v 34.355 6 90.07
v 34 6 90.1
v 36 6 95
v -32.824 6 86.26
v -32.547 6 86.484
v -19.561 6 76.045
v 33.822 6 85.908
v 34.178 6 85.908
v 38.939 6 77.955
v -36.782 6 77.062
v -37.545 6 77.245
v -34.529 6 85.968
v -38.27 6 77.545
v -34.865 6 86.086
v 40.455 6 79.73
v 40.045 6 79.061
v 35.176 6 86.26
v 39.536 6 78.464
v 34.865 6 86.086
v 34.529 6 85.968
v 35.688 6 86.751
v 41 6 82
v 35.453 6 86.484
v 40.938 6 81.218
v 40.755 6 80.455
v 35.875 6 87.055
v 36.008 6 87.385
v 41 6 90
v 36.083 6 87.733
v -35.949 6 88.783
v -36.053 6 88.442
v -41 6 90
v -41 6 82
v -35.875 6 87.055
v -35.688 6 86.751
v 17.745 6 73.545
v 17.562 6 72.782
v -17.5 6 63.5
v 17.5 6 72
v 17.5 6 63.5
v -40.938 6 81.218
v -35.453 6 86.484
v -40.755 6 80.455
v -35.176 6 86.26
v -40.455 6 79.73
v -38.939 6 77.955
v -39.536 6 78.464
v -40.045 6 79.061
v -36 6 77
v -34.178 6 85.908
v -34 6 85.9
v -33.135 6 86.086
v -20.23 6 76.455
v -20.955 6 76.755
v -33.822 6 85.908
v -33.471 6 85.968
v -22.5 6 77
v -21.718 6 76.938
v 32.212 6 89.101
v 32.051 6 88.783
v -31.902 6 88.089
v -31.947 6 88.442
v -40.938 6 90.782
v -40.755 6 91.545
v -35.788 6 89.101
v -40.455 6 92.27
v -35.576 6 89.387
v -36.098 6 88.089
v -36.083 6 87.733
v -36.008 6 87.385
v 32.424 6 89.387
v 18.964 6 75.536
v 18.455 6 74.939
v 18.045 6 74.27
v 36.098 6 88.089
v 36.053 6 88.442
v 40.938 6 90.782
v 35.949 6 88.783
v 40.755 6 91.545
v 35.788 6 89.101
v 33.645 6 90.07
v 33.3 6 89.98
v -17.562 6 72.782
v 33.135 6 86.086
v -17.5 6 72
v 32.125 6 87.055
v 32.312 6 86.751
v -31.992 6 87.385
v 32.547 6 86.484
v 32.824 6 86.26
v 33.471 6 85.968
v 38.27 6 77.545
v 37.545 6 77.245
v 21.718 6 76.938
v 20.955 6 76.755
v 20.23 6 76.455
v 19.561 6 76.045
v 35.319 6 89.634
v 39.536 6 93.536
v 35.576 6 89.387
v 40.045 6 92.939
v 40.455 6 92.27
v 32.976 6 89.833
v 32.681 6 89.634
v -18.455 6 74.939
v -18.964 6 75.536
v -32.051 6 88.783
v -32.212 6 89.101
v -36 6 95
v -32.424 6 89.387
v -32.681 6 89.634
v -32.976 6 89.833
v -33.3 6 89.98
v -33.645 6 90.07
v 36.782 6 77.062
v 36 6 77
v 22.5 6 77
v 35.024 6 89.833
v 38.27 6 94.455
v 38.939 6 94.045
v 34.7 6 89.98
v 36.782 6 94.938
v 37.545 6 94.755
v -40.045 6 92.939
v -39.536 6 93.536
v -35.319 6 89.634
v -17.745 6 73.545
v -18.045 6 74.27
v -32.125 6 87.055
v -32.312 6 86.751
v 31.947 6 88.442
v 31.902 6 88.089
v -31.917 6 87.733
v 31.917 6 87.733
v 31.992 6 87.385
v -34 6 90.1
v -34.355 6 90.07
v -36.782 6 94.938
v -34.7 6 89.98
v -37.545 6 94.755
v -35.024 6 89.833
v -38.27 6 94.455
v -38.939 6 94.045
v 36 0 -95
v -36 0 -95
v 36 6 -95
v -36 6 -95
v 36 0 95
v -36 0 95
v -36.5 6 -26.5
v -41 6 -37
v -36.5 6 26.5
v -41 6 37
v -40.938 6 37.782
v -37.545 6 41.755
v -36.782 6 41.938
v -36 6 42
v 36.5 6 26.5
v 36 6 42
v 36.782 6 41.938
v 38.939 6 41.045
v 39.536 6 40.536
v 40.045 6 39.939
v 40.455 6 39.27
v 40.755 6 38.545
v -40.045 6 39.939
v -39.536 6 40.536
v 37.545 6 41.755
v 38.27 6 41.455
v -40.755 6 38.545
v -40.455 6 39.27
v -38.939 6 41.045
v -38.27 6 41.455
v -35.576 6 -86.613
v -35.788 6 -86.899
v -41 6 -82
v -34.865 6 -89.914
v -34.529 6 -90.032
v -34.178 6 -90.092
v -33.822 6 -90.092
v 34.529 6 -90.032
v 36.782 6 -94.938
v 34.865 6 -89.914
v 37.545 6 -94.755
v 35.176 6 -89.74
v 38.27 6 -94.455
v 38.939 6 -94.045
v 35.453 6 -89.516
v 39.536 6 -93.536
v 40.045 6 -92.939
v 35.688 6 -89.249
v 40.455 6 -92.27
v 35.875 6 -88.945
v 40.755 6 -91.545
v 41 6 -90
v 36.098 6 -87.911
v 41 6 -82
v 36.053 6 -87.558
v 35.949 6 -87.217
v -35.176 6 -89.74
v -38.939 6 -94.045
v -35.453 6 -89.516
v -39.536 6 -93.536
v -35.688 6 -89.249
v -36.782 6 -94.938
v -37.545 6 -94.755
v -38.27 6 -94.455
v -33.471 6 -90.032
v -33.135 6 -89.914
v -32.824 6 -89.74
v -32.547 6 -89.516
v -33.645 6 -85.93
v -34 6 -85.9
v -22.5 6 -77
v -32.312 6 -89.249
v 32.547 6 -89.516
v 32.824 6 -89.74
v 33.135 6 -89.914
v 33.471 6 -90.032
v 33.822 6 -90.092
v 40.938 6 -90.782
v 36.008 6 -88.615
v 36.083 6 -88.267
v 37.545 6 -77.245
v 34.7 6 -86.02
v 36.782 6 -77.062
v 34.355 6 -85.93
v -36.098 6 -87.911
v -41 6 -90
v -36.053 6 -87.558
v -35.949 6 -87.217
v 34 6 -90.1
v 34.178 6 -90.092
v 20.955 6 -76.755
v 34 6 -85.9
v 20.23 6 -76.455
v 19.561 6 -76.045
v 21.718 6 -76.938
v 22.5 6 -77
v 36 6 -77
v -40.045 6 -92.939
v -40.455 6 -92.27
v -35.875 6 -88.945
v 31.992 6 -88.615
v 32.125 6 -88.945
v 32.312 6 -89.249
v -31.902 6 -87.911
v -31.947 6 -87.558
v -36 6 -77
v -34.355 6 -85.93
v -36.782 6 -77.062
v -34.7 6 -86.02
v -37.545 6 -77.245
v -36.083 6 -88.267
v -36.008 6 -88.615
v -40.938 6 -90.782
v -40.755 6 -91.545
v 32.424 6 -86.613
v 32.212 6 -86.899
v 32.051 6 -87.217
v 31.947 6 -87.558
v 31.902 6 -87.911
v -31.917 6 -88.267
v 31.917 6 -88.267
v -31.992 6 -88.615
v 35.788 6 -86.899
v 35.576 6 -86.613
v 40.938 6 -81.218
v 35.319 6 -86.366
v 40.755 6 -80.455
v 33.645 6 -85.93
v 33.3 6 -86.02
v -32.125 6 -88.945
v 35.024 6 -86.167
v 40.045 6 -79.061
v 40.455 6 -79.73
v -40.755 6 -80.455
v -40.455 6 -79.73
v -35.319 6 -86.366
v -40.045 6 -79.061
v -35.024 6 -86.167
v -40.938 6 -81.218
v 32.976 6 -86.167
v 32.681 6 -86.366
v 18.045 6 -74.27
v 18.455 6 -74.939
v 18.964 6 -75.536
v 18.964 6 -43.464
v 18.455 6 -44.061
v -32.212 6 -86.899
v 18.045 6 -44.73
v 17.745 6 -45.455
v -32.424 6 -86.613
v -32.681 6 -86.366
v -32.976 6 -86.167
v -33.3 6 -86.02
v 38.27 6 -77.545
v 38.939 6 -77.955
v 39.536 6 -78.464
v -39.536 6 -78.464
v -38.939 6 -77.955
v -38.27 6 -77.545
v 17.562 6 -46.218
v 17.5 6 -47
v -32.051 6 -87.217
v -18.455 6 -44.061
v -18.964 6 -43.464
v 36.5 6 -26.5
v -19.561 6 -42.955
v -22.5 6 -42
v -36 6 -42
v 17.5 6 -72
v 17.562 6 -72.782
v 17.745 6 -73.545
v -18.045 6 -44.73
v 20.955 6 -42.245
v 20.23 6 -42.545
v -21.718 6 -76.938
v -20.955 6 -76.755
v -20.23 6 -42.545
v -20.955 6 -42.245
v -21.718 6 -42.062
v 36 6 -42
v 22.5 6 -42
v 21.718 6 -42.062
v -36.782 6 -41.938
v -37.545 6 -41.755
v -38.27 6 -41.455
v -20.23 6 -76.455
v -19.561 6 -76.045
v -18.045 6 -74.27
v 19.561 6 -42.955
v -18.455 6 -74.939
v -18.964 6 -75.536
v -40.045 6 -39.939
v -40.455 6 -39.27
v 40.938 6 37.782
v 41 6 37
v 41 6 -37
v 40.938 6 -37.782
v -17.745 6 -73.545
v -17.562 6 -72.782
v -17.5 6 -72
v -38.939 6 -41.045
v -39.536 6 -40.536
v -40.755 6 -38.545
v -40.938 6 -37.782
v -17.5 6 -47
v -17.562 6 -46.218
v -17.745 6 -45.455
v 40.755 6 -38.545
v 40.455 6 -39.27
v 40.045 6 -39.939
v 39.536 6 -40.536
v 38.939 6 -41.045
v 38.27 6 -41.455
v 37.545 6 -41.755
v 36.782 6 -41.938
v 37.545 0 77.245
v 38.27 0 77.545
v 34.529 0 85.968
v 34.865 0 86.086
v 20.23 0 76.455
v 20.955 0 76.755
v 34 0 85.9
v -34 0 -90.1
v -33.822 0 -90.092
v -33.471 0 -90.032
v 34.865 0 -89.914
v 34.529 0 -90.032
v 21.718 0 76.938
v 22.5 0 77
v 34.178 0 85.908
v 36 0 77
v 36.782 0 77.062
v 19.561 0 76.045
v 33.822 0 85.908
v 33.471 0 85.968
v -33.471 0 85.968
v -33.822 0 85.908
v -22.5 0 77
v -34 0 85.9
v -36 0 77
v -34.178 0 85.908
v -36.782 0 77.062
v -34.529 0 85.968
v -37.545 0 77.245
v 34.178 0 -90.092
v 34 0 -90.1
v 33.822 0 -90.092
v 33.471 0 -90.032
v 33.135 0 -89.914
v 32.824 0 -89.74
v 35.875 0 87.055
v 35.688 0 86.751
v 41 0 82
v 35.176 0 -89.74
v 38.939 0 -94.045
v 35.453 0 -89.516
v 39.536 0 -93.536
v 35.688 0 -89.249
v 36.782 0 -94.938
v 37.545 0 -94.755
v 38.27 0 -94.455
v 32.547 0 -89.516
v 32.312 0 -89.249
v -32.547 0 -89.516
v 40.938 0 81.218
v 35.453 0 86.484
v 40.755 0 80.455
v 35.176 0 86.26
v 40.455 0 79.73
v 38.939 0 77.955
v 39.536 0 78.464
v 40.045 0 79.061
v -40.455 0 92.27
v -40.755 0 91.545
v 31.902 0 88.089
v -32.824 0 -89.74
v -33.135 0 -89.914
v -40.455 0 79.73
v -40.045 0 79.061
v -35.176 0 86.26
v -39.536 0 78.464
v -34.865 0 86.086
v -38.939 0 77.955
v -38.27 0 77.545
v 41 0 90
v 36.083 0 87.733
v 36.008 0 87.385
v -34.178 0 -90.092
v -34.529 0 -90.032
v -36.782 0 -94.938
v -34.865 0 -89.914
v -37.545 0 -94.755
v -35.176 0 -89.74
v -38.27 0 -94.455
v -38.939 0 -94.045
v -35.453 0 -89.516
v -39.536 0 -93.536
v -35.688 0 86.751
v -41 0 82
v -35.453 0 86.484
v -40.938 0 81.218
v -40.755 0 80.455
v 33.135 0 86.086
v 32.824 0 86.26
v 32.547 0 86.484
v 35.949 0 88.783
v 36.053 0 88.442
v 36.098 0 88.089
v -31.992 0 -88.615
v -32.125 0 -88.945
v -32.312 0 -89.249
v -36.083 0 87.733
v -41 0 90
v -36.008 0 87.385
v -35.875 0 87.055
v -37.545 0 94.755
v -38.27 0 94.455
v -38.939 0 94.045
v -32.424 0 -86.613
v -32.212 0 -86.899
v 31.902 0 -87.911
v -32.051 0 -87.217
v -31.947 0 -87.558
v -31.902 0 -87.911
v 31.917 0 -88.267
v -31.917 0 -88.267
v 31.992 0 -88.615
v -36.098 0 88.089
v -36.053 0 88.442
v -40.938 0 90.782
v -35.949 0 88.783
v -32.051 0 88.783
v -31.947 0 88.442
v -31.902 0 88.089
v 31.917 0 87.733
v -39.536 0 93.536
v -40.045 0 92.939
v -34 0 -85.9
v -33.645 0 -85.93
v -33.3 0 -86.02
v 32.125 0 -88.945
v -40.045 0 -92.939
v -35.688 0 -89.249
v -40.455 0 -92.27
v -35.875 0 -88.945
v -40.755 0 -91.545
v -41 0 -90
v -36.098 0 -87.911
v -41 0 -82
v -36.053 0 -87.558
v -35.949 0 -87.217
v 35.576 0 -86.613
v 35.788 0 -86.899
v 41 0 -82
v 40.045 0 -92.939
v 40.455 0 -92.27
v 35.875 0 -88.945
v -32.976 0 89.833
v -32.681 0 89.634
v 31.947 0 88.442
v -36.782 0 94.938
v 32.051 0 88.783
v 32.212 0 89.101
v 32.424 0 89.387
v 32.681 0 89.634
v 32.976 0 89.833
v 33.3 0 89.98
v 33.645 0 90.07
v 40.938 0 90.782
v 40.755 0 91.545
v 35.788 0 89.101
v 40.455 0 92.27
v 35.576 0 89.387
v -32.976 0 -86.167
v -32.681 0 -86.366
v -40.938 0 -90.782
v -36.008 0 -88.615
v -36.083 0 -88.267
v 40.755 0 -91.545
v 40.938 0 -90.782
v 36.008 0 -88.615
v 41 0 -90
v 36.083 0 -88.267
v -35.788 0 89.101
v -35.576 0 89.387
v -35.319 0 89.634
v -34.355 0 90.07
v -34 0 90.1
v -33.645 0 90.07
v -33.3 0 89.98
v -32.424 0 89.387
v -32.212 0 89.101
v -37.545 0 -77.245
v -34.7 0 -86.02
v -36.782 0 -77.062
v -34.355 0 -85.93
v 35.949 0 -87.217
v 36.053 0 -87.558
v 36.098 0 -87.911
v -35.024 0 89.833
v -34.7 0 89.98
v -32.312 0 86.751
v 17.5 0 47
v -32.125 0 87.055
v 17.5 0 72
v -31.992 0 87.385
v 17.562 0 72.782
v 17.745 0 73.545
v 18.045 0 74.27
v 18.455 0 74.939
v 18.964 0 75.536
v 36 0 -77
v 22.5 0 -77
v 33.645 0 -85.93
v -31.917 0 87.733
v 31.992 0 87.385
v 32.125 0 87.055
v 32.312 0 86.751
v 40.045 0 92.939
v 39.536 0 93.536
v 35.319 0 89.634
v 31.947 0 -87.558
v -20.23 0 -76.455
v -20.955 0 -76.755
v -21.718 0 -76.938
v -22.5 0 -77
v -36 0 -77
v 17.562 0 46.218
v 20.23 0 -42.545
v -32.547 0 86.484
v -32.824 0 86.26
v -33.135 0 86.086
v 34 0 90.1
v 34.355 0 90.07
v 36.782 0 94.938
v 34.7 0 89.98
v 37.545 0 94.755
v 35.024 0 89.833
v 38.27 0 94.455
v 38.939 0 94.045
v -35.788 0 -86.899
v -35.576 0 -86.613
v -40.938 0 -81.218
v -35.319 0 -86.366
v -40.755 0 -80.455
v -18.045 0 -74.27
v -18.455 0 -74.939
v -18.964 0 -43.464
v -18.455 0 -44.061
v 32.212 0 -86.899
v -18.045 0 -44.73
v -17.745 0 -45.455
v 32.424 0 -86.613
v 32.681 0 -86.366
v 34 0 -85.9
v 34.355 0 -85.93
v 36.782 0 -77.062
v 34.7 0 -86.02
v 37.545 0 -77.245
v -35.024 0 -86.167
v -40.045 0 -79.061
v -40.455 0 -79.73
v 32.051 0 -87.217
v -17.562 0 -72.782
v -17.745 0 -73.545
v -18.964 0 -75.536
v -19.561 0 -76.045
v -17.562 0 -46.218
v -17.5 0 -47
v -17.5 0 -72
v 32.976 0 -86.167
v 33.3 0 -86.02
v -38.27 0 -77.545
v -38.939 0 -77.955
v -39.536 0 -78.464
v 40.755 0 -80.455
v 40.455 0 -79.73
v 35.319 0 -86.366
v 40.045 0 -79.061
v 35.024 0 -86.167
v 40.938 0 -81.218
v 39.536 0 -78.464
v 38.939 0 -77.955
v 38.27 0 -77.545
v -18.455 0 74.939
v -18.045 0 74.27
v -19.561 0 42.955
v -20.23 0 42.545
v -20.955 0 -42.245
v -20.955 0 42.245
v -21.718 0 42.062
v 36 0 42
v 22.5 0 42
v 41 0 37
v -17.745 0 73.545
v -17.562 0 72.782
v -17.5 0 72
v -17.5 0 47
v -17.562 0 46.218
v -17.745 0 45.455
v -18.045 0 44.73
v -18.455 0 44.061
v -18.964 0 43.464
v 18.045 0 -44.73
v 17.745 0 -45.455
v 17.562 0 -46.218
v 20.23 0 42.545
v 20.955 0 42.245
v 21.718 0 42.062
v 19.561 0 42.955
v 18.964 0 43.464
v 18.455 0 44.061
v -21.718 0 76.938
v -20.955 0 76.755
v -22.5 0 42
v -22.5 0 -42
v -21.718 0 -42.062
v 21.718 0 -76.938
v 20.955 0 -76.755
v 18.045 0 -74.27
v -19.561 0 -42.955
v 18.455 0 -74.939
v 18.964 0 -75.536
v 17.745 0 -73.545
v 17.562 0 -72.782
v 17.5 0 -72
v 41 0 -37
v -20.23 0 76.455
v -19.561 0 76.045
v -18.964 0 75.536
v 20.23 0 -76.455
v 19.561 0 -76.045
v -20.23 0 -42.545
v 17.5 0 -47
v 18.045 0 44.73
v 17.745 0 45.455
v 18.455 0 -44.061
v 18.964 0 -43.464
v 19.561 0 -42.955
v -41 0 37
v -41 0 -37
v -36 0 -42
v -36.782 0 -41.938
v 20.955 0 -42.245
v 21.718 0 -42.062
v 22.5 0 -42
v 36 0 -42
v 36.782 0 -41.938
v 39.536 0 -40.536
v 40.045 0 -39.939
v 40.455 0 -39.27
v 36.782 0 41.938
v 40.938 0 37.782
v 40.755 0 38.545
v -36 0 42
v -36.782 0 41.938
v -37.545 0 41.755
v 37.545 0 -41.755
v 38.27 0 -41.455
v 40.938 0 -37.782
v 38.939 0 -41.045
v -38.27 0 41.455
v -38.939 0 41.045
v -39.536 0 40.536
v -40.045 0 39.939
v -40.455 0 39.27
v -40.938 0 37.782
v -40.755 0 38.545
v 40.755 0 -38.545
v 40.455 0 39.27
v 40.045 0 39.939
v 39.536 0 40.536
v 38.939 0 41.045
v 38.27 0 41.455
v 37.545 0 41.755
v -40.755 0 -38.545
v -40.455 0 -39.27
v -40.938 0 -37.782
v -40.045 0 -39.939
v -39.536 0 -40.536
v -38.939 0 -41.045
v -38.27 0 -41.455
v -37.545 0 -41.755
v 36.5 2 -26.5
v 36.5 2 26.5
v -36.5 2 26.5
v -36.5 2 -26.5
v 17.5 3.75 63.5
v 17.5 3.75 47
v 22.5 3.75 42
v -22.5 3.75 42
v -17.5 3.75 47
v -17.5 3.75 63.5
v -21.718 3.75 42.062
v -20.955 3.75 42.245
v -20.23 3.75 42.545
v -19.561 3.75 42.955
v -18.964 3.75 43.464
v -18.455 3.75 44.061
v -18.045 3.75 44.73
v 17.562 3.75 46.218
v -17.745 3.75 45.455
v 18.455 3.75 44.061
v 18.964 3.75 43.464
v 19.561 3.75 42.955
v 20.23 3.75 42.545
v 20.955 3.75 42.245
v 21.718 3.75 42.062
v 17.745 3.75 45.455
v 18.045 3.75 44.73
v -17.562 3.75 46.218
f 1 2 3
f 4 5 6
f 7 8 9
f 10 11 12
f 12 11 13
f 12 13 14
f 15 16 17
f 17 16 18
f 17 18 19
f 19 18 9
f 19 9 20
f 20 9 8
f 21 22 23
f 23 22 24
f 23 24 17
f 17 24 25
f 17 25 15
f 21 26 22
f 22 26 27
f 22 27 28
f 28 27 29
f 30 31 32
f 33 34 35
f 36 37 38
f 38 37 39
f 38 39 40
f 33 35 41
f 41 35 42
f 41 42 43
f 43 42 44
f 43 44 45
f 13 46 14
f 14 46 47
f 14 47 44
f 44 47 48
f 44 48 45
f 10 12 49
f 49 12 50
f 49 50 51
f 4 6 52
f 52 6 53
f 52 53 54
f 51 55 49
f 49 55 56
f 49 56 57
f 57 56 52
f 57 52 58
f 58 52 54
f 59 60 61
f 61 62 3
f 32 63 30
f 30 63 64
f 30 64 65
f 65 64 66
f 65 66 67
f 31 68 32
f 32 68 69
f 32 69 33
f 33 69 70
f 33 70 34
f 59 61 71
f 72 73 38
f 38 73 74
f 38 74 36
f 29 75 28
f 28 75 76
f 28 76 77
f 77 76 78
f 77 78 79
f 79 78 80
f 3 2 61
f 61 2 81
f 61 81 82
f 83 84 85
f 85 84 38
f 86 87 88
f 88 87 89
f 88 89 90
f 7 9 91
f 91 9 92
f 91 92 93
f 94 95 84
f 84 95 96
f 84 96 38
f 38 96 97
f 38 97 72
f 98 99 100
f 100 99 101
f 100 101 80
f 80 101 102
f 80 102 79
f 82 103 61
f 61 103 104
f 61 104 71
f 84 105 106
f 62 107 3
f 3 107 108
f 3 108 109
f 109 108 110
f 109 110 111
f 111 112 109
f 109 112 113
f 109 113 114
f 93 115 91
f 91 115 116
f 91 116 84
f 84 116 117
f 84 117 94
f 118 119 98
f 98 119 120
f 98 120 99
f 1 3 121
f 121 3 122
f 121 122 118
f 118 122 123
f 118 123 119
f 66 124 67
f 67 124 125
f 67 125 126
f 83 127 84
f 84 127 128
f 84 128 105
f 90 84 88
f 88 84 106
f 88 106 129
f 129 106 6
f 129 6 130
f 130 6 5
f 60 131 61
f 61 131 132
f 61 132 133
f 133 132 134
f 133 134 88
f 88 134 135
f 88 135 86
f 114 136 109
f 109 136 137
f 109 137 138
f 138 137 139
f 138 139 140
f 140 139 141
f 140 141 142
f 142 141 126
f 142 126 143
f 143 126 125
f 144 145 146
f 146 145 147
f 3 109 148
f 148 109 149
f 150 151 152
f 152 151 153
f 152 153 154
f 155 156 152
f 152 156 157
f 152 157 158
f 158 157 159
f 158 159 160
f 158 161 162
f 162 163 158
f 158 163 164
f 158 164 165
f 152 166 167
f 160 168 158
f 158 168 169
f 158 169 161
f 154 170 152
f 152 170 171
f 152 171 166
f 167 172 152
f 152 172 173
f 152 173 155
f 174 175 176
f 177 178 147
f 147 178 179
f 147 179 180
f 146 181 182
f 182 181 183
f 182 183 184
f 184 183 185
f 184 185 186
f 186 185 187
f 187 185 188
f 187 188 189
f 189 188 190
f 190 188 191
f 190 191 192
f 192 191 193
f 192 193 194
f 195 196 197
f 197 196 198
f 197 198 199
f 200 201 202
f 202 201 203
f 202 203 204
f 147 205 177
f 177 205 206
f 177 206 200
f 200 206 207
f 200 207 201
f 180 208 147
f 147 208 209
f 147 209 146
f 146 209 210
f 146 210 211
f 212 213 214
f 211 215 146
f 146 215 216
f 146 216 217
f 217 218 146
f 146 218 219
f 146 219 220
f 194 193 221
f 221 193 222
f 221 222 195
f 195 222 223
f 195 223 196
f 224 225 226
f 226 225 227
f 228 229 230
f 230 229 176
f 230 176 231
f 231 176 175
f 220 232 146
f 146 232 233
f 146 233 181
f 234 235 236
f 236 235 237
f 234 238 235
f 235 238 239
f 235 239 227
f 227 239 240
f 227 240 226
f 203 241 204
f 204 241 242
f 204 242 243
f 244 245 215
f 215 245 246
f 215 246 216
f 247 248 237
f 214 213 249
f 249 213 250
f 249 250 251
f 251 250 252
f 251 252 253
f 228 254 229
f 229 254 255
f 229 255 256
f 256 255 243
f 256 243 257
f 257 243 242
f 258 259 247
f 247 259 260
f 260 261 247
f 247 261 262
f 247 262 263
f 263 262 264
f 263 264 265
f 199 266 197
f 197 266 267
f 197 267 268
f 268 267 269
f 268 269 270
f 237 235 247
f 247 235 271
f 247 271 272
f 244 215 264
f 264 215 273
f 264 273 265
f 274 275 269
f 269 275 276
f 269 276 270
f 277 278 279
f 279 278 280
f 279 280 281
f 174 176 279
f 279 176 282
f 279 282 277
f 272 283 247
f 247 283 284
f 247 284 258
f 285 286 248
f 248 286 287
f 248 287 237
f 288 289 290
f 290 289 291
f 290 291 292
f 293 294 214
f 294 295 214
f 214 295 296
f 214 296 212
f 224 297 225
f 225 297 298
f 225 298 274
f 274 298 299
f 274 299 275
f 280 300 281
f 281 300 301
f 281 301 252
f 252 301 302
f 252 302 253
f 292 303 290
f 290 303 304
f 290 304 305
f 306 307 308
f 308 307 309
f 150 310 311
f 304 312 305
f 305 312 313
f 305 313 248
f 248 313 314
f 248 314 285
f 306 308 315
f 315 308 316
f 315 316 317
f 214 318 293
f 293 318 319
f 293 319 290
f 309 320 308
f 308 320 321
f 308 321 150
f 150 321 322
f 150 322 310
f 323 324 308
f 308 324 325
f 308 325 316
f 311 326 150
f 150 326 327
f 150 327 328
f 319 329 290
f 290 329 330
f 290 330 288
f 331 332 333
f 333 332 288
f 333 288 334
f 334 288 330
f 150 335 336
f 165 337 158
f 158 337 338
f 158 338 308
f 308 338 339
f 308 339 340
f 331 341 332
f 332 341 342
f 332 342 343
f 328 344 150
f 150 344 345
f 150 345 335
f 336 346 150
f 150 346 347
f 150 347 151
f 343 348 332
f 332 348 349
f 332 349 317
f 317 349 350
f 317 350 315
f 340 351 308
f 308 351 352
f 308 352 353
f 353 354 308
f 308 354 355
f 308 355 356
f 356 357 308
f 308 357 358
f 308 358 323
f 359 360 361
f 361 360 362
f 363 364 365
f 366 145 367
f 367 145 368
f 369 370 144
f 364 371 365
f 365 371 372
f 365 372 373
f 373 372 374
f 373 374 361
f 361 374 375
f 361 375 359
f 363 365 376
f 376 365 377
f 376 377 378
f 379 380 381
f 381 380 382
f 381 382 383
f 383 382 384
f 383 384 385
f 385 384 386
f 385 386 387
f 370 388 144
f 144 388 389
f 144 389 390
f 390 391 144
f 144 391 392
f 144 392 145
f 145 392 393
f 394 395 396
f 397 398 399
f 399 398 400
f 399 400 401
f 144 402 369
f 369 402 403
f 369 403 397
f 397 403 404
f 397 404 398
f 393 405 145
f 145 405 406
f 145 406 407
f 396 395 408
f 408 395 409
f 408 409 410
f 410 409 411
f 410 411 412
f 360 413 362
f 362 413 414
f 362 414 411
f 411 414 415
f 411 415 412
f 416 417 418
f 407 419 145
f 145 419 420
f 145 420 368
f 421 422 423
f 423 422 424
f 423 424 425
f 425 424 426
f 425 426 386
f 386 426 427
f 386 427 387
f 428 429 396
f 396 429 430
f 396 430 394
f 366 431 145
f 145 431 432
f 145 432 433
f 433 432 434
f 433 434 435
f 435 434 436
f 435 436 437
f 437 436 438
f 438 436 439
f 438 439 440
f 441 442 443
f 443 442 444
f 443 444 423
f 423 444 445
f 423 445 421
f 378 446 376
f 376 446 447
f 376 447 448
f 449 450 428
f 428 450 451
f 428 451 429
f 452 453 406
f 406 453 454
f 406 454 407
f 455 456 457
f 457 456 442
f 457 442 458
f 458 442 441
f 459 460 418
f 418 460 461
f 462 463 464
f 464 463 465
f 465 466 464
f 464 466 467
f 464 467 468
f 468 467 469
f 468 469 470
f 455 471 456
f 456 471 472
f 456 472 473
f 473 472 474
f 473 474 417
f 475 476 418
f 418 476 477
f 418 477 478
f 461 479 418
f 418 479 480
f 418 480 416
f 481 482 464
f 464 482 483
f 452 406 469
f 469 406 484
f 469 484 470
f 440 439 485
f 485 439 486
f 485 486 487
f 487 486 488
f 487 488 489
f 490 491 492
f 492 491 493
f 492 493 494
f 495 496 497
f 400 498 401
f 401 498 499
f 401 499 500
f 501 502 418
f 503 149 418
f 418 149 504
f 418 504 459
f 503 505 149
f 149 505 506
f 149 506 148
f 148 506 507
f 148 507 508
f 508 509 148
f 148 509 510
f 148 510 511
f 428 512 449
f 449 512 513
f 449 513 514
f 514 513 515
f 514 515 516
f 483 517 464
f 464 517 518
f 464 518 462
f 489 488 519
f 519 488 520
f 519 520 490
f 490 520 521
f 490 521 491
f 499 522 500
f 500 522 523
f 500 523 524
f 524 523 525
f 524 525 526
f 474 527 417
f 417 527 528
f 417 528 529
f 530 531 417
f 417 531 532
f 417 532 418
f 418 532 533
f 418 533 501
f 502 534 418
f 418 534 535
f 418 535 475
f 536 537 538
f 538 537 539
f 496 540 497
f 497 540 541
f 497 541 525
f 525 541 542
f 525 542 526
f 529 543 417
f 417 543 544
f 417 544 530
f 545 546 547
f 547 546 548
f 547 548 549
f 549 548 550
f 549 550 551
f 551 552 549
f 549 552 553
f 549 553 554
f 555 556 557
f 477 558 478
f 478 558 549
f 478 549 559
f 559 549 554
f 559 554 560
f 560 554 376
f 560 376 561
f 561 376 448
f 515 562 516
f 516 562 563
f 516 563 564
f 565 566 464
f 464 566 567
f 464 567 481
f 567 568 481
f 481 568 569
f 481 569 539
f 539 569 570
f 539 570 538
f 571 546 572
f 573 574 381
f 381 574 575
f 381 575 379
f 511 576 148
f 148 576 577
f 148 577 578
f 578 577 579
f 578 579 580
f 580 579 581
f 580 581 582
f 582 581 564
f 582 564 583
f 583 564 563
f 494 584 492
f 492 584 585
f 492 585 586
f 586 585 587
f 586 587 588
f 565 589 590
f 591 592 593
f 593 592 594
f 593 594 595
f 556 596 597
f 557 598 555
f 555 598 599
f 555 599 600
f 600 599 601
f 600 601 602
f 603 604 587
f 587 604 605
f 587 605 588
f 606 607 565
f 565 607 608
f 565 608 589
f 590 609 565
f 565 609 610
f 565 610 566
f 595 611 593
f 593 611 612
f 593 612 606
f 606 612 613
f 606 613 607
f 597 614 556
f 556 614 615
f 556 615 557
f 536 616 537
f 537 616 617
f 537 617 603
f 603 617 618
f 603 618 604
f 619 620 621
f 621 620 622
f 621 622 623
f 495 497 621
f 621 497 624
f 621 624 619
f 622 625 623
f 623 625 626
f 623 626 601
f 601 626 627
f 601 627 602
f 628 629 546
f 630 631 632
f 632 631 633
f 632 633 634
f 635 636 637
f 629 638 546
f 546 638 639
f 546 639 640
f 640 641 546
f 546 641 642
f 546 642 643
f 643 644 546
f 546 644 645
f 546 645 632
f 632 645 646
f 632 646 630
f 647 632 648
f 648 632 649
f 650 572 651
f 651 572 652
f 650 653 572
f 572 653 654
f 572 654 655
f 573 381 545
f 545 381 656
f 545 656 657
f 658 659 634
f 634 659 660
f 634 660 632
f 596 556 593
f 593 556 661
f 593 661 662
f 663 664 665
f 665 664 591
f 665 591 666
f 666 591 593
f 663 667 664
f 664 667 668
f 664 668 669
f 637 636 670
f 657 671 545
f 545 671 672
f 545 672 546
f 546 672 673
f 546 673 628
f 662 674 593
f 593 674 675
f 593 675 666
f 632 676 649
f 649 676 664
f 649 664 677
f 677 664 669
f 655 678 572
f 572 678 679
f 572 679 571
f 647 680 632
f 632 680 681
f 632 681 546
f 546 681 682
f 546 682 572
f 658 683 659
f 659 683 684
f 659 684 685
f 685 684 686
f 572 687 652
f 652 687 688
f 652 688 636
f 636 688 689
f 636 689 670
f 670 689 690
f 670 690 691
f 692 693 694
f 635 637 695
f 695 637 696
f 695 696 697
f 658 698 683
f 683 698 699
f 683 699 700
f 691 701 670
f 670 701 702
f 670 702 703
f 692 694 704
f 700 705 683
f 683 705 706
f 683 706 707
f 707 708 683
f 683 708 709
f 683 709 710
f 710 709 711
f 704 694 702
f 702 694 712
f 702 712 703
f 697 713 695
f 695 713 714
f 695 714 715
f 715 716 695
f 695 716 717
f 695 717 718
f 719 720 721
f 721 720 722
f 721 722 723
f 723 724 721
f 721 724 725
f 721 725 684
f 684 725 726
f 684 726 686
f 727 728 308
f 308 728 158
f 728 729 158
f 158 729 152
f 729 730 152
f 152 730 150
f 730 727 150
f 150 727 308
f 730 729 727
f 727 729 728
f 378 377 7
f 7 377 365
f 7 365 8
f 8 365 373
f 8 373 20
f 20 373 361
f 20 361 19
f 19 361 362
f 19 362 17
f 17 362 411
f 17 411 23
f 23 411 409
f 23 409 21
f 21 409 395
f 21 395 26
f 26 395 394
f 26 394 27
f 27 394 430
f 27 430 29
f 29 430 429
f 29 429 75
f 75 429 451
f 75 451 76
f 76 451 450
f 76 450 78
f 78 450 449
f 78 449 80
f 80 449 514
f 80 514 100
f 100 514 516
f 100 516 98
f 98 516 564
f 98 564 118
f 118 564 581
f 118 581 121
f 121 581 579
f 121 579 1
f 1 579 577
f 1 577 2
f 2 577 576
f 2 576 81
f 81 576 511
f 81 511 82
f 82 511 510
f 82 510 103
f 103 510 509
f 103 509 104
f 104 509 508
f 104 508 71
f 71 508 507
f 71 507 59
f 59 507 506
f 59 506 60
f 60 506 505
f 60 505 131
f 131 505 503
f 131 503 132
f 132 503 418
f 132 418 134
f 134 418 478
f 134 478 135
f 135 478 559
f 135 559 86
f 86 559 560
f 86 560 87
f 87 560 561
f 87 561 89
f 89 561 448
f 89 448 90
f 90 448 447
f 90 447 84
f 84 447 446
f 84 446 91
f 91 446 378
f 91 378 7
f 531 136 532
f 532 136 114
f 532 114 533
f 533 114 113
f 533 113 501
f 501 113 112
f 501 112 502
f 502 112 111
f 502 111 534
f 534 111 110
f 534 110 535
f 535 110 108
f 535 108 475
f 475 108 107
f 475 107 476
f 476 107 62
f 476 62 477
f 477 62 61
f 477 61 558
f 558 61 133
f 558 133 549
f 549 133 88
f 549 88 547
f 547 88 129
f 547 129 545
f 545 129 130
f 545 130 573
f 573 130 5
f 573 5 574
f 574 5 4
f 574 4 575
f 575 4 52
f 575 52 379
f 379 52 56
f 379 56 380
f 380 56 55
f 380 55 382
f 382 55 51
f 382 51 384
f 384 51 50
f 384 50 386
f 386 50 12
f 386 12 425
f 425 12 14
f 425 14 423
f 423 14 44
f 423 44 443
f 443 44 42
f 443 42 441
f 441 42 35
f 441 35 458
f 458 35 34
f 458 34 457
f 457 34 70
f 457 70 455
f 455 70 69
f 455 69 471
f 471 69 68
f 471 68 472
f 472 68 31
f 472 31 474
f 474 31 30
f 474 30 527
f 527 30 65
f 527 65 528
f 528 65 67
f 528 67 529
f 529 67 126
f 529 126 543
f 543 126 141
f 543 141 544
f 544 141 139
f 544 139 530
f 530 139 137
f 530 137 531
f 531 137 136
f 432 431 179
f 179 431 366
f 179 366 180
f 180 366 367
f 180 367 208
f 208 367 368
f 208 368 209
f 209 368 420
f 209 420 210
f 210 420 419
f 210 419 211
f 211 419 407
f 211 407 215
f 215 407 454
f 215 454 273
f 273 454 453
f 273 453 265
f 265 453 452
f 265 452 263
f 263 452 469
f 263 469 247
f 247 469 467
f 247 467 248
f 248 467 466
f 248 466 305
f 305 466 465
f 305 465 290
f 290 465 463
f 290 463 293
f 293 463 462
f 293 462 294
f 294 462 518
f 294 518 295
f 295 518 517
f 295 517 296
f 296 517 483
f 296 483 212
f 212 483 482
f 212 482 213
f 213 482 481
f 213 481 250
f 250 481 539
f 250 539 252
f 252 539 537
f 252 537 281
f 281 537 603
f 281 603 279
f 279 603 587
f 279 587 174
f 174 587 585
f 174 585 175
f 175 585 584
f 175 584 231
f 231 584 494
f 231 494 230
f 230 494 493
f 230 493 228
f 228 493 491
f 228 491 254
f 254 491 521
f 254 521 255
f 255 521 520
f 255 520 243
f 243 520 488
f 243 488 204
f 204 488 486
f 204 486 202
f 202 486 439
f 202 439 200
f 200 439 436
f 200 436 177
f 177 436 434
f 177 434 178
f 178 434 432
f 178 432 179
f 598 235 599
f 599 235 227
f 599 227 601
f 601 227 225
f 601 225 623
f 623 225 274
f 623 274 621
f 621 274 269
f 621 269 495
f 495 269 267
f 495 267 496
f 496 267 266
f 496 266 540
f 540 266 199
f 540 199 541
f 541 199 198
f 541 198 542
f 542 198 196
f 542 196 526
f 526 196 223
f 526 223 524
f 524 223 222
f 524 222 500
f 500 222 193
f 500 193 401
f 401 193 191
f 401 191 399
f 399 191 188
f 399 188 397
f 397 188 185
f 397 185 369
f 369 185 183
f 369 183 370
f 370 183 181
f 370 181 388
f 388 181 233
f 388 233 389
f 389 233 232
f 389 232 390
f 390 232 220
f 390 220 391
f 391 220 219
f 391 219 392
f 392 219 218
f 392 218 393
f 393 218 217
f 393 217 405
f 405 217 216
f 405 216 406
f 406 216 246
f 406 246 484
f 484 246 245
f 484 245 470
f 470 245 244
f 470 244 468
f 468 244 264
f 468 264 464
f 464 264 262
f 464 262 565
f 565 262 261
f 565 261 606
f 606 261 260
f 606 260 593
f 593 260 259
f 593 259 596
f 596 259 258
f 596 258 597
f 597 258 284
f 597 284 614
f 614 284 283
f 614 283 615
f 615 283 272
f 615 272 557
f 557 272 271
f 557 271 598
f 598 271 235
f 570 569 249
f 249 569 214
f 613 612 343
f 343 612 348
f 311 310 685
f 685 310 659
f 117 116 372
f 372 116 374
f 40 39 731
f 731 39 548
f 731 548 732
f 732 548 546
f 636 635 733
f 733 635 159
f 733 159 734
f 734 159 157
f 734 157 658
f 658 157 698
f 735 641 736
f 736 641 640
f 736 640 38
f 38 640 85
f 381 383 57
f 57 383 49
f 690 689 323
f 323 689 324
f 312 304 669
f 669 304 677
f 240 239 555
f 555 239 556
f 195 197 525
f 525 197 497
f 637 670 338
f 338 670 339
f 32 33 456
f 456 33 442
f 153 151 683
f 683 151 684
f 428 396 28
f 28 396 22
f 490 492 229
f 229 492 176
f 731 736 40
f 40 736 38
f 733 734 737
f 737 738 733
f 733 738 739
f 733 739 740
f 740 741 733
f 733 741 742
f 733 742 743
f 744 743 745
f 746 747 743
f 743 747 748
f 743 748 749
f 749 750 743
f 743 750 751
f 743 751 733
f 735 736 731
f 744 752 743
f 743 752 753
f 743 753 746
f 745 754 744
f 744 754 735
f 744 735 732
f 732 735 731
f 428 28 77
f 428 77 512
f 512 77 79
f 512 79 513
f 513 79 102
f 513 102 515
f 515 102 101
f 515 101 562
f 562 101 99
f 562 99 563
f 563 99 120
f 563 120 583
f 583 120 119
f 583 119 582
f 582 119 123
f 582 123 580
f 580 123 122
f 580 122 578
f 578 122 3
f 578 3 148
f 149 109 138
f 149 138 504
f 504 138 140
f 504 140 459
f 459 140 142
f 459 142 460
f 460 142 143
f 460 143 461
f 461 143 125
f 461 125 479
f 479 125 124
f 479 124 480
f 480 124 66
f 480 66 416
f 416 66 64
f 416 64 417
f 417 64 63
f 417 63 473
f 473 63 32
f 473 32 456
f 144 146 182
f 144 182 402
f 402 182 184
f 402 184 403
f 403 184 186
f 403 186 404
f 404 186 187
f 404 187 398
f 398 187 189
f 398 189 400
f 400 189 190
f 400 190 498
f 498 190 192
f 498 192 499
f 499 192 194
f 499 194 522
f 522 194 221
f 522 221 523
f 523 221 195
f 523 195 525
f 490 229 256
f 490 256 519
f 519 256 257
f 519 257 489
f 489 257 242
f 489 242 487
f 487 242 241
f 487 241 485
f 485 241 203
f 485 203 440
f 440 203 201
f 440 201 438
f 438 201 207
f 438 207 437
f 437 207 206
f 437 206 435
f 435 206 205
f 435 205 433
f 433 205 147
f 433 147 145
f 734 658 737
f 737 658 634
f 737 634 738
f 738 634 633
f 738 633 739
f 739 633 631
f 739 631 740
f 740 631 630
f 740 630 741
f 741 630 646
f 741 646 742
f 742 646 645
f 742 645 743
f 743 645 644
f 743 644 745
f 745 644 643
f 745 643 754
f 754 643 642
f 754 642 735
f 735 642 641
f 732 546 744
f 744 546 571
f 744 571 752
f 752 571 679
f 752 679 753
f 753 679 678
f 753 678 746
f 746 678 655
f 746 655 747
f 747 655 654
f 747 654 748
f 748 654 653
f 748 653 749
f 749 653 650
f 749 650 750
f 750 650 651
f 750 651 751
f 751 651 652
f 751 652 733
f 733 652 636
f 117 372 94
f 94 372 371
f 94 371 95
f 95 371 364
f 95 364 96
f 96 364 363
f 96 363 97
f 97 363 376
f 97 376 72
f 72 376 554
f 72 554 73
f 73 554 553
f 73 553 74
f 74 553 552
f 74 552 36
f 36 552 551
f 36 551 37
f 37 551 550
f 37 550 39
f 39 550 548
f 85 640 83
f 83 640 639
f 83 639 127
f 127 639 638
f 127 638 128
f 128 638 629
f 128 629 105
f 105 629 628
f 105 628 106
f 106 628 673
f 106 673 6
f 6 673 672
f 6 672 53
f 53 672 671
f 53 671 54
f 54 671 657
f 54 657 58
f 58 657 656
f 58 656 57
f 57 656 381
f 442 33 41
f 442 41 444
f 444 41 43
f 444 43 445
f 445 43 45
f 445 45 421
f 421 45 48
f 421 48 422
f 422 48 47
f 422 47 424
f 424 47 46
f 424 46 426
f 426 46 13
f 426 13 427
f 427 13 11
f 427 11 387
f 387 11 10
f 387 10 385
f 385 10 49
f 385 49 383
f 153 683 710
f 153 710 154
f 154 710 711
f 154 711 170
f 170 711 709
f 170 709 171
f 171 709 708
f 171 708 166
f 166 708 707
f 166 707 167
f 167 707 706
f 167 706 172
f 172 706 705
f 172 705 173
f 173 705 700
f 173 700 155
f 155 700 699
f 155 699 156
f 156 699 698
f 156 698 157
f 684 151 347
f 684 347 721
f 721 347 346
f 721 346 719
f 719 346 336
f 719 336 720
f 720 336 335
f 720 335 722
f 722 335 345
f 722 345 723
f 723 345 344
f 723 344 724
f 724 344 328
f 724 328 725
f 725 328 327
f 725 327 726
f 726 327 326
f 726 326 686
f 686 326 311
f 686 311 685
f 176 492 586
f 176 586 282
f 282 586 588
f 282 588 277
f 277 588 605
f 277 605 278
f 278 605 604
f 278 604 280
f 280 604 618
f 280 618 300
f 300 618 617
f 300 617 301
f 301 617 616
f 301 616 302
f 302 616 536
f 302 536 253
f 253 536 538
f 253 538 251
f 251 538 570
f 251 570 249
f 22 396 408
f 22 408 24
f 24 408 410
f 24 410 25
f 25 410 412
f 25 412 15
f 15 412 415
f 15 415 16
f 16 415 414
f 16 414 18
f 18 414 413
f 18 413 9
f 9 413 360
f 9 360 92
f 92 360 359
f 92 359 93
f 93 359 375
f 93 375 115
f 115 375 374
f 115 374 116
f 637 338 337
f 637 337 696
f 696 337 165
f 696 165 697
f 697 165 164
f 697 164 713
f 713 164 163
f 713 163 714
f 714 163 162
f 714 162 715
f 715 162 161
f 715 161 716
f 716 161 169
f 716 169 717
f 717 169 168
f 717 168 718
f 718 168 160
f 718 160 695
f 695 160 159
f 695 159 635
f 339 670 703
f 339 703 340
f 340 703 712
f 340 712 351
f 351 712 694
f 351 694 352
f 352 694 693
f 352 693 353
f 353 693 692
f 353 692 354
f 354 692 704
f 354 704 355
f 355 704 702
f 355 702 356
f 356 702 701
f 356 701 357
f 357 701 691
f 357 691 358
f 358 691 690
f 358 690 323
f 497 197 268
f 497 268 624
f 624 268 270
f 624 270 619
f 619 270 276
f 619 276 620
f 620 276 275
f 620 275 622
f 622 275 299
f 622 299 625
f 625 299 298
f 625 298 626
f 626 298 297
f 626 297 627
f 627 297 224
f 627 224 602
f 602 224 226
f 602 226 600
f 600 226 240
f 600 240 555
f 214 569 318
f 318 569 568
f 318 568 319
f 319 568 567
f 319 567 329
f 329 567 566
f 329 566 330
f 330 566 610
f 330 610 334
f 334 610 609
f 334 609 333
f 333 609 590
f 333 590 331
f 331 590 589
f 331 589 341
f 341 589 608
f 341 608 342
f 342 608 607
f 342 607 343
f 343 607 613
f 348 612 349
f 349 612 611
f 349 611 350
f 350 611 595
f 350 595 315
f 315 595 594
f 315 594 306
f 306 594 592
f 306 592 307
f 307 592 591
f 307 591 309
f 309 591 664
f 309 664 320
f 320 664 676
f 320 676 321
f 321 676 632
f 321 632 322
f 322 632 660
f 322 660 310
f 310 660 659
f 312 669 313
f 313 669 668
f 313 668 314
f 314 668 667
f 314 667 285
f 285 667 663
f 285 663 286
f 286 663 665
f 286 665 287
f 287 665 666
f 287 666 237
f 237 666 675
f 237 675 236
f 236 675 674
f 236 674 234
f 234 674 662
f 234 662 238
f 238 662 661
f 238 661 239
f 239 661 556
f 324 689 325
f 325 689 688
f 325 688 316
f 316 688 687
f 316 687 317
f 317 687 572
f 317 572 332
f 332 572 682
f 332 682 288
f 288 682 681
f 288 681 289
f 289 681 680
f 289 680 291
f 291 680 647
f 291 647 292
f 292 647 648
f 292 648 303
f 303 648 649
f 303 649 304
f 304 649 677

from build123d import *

# Parameters (mm, degrees)
SKETCH1_W           = 85
SKETCH1_H           = 190
BOSS_EXTRUDE1_DEPTH = 6
SKETCH2_W           = 73
SKETCH2_H           = 53
CUT_EXTRUDE1_DEPTH  = 4
SKETCH3_R           = 2.1
CUT_EXTRUDE2_DEPTH  = 9
SKETCH4_W           = 25
SKETCH4_H           = 35
CUT_EXTRUDE3_DEPTH  = 10
SKETCH5_W           = 1.5
SKETCH5_H           = 190
CUT_EXTRUDE4_DEPTH  = 10
SKETCH6_W           = 35
SKETCH6_H           = 21.5
CUT_EXTRUDE5_DEPTH  = 2.25
FILLET1_R           = 5


with BuildPart() as part:
    # Sketch1 → Boss-Extrude1 (new body)
    with BuildSketch(Plane(origin=(0, 0, 0), x_dir=(1, 0, 0), z_dir=(0, 1, 0))):
        Rectangle(SKETCH1_W, SKETCH1_H)
    extrude(amount=BOSS_EXTRUDE1_DEPTH)

    # Sketch2 → Cut-Extrude1 (cut)
    with BuildSketch(Plane(origin=(0, 6, 0), x_dir=(1, 0, 0), z_dir=(0, 1, 0))):
        Rectangle(SKETCH2_W, SKETCH2_H)
    extrude(amount=-CUT_EXTRUDE1_DEPTH, mode=Mode.SUBTRACT)

    # Sketch3 → Cut-Extrude2 (cut)
    with BuildSketch(Plane(origin=(0, 6, 0), x_dir=(1, 0, 0), z_dir=(0, 1, 0))):
        with Locations((34, -88)):
            Circle(SKETCH3_R)
        with Locations((-34, -88)):
            Circle(SKETCH3_R)
        with Locations((-34, 88)):
            Circle(SKETCH3_R)
        with Locations((34, 88)):
            Circle(SKETCH3_R)
    extrude(amount=-CUT_EXTRUDE2_DEPTH, mode=Mode.SUBTRACT)

    # Sketch4 → Cut-Extrude3 (cut)
    with BuildSketch(Plane(origin=(0, 6, 0), x_dir=(1, 0, 0), z_dir=(0, 1, 0))):
        with Locations((-30, 59.5)):
            Rectangle(SKETCH4_W, SKETCH4_H)
        with Locations((-30, -59.5)):
            Rectangle(SKETCH4_W, SKETCH4_H)
        with Locations((30, -59.5)):
            Rectangle(SKETCH4_W, SKETCH4_H)
        with Locations((30, 59.5)):
            Rectangle(SKETCH4_W, SKETCH4_H)
    extrude(amount=-CUT_EXTRUDE3_DEPTH, mode=Mode.SUBTRACT)

    # Sketch5 → Cut-Extrude4 (cut)
    with BuildSketch(Plane(origin=(0, 6, 0), x_dir=(1, 0, 0), z_dir=(0, 1, 0))):
        with Locations((-41.75, 0)):
            Rectangle(SKETCH5_W, SKETCH5_H)
        with Locations((41.75, 0)):
            Rectangle(SKETCH5_W, SKETCH5_H)
    extrude(amount=-CUT_EXTRUDE4_DEPTH, mode=Mode.SUBTRACT)

    # Sketch6 → Cut-Extrude5 (cut)
    with BuildSketch(Plane(origin=(0, 6, 0), x_dir=(1, 0, 0), z_dir=(0, 1, 0))):
        with Locations((0, -52.75)):
            Rectangle(SKETCH6_W, SKETCH6_H)
    extrude(amount=-CUT_EXTRUDE5_DEPTH, mode=Mode.SUBTRACT)

    # Fillet1
    fillet1_edges = [part.edges().sort_by_distance(p)[0] for p in [
        (41, 3, -77),
        (-41, 3, 77),
        (-41, 3, -42),
        (-41, 3, 42),
        (-41, 3, -95),
        (-41, 3, -77),
        (-41, 3, 95),
        (41, 3, 42),
        (41, 3, -42),
        (41, 3, 95),
        (41, 3, 77),
        (41, 3, -95),
        (17.5, 3, -42),
        (17.5, 3, -77),
        (-17.5, 1.875, 42),
        (-17.5, 3, 77),
        (17.5, 3, 77),
        (17.5, 1.875, 42),
        (-17.5, 3, -77),
        (-17.5, 3, -42),
    ]]
    fillet(fillet1_edges, radius=FILLET1_R)


solid = part.part
